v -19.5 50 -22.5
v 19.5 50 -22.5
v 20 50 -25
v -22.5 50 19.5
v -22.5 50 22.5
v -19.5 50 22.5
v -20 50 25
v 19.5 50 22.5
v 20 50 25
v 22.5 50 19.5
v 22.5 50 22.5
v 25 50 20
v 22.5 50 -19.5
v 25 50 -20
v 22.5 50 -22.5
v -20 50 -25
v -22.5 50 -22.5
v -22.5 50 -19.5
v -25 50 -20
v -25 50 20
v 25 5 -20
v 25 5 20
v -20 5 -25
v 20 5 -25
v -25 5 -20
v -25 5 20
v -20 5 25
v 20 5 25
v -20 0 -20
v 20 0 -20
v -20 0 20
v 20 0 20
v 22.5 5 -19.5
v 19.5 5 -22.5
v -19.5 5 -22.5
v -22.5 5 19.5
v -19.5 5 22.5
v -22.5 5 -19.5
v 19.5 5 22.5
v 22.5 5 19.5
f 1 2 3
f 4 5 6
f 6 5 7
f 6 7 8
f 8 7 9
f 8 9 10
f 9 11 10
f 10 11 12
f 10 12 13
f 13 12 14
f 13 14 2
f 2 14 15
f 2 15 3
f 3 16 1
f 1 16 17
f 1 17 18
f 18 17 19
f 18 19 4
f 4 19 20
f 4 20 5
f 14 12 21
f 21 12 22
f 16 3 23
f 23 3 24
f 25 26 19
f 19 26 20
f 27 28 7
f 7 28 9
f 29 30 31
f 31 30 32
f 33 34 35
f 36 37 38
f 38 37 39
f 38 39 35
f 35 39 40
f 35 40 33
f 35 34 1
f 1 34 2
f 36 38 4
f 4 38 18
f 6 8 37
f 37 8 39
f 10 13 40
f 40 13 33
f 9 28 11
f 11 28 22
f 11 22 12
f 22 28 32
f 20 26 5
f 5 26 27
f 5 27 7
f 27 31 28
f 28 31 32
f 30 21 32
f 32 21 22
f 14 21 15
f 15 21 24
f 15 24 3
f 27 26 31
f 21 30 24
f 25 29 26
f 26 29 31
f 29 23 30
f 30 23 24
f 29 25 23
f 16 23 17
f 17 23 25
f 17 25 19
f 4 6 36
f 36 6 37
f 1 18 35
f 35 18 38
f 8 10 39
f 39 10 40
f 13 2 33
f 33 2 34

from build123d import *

# Parameters (mm, degrees)
SKETCH1_W           = 50
SKETCH1_H           = 50
BOSS_EXTRUDE1_DEPTH = 50
SKETCH2_W           = 45
SKETCH2_H           = 45
CUT_EXTRUDE1_DEPTH  = 45
FILLET2_SIZE        = 5
FILLET3_SIZE        = 3


with BuildPart() as part:
    # Sketch1 → Boss-Extrude1 (new body)
    with BuildSketch(Plane(origin=(0, 0, 0), x_dir=(1, 0, 0), z_dir=(0, 1, 0))):
        Rectangle(SKETCH1_W, SKETCH1_H)
    extrude(amount=BOSS_EXTRUDE1_DEPTH)

    # Sketch2 → Cut-Extrude1 (cut)
    with BuildSketch(Plane(origin=(0, 50, 0), x_dir=(1, 0, 0), z_dir=(0, 1, 0))):
        Rectangle(SKETCH2_W, SKETCH2_H)
    extrude(amount=-CUT_EXTRUDE1_DEPTH, mode=Mode.SUBTRACT)

    # Fillet2
    fillet2_edges = [part.edges().sort_by_distance(p)[0] for p in [
        (0, 0, 25),
        (-25, 0, 0),
        (0, 0, -25),
        (25, 0, 0),
        (25, 25, 25),
        (-25, 25, 25),
        (-25, 25, -25),
        (25, 25, -25),
    ]]
    chamfer(fillet2_edges, length=FILLET2_SIZE - 0.0001)  # a hair under: the kernel refuses the full size

    # Fillet3
    fillet3_edges = [part.edges().sort_by_distance(p)[0] for p in [
        (-22.5, 27.5, -22.5),
        (-22.5, 27.5, 22.5),
        (22.5, 27.5, 22.5),
        (22.5, 27.5, -22.5),
    ]]
    chamfer(fillet3_edges, length=FILLET3_SIZE)


solid = part.part
